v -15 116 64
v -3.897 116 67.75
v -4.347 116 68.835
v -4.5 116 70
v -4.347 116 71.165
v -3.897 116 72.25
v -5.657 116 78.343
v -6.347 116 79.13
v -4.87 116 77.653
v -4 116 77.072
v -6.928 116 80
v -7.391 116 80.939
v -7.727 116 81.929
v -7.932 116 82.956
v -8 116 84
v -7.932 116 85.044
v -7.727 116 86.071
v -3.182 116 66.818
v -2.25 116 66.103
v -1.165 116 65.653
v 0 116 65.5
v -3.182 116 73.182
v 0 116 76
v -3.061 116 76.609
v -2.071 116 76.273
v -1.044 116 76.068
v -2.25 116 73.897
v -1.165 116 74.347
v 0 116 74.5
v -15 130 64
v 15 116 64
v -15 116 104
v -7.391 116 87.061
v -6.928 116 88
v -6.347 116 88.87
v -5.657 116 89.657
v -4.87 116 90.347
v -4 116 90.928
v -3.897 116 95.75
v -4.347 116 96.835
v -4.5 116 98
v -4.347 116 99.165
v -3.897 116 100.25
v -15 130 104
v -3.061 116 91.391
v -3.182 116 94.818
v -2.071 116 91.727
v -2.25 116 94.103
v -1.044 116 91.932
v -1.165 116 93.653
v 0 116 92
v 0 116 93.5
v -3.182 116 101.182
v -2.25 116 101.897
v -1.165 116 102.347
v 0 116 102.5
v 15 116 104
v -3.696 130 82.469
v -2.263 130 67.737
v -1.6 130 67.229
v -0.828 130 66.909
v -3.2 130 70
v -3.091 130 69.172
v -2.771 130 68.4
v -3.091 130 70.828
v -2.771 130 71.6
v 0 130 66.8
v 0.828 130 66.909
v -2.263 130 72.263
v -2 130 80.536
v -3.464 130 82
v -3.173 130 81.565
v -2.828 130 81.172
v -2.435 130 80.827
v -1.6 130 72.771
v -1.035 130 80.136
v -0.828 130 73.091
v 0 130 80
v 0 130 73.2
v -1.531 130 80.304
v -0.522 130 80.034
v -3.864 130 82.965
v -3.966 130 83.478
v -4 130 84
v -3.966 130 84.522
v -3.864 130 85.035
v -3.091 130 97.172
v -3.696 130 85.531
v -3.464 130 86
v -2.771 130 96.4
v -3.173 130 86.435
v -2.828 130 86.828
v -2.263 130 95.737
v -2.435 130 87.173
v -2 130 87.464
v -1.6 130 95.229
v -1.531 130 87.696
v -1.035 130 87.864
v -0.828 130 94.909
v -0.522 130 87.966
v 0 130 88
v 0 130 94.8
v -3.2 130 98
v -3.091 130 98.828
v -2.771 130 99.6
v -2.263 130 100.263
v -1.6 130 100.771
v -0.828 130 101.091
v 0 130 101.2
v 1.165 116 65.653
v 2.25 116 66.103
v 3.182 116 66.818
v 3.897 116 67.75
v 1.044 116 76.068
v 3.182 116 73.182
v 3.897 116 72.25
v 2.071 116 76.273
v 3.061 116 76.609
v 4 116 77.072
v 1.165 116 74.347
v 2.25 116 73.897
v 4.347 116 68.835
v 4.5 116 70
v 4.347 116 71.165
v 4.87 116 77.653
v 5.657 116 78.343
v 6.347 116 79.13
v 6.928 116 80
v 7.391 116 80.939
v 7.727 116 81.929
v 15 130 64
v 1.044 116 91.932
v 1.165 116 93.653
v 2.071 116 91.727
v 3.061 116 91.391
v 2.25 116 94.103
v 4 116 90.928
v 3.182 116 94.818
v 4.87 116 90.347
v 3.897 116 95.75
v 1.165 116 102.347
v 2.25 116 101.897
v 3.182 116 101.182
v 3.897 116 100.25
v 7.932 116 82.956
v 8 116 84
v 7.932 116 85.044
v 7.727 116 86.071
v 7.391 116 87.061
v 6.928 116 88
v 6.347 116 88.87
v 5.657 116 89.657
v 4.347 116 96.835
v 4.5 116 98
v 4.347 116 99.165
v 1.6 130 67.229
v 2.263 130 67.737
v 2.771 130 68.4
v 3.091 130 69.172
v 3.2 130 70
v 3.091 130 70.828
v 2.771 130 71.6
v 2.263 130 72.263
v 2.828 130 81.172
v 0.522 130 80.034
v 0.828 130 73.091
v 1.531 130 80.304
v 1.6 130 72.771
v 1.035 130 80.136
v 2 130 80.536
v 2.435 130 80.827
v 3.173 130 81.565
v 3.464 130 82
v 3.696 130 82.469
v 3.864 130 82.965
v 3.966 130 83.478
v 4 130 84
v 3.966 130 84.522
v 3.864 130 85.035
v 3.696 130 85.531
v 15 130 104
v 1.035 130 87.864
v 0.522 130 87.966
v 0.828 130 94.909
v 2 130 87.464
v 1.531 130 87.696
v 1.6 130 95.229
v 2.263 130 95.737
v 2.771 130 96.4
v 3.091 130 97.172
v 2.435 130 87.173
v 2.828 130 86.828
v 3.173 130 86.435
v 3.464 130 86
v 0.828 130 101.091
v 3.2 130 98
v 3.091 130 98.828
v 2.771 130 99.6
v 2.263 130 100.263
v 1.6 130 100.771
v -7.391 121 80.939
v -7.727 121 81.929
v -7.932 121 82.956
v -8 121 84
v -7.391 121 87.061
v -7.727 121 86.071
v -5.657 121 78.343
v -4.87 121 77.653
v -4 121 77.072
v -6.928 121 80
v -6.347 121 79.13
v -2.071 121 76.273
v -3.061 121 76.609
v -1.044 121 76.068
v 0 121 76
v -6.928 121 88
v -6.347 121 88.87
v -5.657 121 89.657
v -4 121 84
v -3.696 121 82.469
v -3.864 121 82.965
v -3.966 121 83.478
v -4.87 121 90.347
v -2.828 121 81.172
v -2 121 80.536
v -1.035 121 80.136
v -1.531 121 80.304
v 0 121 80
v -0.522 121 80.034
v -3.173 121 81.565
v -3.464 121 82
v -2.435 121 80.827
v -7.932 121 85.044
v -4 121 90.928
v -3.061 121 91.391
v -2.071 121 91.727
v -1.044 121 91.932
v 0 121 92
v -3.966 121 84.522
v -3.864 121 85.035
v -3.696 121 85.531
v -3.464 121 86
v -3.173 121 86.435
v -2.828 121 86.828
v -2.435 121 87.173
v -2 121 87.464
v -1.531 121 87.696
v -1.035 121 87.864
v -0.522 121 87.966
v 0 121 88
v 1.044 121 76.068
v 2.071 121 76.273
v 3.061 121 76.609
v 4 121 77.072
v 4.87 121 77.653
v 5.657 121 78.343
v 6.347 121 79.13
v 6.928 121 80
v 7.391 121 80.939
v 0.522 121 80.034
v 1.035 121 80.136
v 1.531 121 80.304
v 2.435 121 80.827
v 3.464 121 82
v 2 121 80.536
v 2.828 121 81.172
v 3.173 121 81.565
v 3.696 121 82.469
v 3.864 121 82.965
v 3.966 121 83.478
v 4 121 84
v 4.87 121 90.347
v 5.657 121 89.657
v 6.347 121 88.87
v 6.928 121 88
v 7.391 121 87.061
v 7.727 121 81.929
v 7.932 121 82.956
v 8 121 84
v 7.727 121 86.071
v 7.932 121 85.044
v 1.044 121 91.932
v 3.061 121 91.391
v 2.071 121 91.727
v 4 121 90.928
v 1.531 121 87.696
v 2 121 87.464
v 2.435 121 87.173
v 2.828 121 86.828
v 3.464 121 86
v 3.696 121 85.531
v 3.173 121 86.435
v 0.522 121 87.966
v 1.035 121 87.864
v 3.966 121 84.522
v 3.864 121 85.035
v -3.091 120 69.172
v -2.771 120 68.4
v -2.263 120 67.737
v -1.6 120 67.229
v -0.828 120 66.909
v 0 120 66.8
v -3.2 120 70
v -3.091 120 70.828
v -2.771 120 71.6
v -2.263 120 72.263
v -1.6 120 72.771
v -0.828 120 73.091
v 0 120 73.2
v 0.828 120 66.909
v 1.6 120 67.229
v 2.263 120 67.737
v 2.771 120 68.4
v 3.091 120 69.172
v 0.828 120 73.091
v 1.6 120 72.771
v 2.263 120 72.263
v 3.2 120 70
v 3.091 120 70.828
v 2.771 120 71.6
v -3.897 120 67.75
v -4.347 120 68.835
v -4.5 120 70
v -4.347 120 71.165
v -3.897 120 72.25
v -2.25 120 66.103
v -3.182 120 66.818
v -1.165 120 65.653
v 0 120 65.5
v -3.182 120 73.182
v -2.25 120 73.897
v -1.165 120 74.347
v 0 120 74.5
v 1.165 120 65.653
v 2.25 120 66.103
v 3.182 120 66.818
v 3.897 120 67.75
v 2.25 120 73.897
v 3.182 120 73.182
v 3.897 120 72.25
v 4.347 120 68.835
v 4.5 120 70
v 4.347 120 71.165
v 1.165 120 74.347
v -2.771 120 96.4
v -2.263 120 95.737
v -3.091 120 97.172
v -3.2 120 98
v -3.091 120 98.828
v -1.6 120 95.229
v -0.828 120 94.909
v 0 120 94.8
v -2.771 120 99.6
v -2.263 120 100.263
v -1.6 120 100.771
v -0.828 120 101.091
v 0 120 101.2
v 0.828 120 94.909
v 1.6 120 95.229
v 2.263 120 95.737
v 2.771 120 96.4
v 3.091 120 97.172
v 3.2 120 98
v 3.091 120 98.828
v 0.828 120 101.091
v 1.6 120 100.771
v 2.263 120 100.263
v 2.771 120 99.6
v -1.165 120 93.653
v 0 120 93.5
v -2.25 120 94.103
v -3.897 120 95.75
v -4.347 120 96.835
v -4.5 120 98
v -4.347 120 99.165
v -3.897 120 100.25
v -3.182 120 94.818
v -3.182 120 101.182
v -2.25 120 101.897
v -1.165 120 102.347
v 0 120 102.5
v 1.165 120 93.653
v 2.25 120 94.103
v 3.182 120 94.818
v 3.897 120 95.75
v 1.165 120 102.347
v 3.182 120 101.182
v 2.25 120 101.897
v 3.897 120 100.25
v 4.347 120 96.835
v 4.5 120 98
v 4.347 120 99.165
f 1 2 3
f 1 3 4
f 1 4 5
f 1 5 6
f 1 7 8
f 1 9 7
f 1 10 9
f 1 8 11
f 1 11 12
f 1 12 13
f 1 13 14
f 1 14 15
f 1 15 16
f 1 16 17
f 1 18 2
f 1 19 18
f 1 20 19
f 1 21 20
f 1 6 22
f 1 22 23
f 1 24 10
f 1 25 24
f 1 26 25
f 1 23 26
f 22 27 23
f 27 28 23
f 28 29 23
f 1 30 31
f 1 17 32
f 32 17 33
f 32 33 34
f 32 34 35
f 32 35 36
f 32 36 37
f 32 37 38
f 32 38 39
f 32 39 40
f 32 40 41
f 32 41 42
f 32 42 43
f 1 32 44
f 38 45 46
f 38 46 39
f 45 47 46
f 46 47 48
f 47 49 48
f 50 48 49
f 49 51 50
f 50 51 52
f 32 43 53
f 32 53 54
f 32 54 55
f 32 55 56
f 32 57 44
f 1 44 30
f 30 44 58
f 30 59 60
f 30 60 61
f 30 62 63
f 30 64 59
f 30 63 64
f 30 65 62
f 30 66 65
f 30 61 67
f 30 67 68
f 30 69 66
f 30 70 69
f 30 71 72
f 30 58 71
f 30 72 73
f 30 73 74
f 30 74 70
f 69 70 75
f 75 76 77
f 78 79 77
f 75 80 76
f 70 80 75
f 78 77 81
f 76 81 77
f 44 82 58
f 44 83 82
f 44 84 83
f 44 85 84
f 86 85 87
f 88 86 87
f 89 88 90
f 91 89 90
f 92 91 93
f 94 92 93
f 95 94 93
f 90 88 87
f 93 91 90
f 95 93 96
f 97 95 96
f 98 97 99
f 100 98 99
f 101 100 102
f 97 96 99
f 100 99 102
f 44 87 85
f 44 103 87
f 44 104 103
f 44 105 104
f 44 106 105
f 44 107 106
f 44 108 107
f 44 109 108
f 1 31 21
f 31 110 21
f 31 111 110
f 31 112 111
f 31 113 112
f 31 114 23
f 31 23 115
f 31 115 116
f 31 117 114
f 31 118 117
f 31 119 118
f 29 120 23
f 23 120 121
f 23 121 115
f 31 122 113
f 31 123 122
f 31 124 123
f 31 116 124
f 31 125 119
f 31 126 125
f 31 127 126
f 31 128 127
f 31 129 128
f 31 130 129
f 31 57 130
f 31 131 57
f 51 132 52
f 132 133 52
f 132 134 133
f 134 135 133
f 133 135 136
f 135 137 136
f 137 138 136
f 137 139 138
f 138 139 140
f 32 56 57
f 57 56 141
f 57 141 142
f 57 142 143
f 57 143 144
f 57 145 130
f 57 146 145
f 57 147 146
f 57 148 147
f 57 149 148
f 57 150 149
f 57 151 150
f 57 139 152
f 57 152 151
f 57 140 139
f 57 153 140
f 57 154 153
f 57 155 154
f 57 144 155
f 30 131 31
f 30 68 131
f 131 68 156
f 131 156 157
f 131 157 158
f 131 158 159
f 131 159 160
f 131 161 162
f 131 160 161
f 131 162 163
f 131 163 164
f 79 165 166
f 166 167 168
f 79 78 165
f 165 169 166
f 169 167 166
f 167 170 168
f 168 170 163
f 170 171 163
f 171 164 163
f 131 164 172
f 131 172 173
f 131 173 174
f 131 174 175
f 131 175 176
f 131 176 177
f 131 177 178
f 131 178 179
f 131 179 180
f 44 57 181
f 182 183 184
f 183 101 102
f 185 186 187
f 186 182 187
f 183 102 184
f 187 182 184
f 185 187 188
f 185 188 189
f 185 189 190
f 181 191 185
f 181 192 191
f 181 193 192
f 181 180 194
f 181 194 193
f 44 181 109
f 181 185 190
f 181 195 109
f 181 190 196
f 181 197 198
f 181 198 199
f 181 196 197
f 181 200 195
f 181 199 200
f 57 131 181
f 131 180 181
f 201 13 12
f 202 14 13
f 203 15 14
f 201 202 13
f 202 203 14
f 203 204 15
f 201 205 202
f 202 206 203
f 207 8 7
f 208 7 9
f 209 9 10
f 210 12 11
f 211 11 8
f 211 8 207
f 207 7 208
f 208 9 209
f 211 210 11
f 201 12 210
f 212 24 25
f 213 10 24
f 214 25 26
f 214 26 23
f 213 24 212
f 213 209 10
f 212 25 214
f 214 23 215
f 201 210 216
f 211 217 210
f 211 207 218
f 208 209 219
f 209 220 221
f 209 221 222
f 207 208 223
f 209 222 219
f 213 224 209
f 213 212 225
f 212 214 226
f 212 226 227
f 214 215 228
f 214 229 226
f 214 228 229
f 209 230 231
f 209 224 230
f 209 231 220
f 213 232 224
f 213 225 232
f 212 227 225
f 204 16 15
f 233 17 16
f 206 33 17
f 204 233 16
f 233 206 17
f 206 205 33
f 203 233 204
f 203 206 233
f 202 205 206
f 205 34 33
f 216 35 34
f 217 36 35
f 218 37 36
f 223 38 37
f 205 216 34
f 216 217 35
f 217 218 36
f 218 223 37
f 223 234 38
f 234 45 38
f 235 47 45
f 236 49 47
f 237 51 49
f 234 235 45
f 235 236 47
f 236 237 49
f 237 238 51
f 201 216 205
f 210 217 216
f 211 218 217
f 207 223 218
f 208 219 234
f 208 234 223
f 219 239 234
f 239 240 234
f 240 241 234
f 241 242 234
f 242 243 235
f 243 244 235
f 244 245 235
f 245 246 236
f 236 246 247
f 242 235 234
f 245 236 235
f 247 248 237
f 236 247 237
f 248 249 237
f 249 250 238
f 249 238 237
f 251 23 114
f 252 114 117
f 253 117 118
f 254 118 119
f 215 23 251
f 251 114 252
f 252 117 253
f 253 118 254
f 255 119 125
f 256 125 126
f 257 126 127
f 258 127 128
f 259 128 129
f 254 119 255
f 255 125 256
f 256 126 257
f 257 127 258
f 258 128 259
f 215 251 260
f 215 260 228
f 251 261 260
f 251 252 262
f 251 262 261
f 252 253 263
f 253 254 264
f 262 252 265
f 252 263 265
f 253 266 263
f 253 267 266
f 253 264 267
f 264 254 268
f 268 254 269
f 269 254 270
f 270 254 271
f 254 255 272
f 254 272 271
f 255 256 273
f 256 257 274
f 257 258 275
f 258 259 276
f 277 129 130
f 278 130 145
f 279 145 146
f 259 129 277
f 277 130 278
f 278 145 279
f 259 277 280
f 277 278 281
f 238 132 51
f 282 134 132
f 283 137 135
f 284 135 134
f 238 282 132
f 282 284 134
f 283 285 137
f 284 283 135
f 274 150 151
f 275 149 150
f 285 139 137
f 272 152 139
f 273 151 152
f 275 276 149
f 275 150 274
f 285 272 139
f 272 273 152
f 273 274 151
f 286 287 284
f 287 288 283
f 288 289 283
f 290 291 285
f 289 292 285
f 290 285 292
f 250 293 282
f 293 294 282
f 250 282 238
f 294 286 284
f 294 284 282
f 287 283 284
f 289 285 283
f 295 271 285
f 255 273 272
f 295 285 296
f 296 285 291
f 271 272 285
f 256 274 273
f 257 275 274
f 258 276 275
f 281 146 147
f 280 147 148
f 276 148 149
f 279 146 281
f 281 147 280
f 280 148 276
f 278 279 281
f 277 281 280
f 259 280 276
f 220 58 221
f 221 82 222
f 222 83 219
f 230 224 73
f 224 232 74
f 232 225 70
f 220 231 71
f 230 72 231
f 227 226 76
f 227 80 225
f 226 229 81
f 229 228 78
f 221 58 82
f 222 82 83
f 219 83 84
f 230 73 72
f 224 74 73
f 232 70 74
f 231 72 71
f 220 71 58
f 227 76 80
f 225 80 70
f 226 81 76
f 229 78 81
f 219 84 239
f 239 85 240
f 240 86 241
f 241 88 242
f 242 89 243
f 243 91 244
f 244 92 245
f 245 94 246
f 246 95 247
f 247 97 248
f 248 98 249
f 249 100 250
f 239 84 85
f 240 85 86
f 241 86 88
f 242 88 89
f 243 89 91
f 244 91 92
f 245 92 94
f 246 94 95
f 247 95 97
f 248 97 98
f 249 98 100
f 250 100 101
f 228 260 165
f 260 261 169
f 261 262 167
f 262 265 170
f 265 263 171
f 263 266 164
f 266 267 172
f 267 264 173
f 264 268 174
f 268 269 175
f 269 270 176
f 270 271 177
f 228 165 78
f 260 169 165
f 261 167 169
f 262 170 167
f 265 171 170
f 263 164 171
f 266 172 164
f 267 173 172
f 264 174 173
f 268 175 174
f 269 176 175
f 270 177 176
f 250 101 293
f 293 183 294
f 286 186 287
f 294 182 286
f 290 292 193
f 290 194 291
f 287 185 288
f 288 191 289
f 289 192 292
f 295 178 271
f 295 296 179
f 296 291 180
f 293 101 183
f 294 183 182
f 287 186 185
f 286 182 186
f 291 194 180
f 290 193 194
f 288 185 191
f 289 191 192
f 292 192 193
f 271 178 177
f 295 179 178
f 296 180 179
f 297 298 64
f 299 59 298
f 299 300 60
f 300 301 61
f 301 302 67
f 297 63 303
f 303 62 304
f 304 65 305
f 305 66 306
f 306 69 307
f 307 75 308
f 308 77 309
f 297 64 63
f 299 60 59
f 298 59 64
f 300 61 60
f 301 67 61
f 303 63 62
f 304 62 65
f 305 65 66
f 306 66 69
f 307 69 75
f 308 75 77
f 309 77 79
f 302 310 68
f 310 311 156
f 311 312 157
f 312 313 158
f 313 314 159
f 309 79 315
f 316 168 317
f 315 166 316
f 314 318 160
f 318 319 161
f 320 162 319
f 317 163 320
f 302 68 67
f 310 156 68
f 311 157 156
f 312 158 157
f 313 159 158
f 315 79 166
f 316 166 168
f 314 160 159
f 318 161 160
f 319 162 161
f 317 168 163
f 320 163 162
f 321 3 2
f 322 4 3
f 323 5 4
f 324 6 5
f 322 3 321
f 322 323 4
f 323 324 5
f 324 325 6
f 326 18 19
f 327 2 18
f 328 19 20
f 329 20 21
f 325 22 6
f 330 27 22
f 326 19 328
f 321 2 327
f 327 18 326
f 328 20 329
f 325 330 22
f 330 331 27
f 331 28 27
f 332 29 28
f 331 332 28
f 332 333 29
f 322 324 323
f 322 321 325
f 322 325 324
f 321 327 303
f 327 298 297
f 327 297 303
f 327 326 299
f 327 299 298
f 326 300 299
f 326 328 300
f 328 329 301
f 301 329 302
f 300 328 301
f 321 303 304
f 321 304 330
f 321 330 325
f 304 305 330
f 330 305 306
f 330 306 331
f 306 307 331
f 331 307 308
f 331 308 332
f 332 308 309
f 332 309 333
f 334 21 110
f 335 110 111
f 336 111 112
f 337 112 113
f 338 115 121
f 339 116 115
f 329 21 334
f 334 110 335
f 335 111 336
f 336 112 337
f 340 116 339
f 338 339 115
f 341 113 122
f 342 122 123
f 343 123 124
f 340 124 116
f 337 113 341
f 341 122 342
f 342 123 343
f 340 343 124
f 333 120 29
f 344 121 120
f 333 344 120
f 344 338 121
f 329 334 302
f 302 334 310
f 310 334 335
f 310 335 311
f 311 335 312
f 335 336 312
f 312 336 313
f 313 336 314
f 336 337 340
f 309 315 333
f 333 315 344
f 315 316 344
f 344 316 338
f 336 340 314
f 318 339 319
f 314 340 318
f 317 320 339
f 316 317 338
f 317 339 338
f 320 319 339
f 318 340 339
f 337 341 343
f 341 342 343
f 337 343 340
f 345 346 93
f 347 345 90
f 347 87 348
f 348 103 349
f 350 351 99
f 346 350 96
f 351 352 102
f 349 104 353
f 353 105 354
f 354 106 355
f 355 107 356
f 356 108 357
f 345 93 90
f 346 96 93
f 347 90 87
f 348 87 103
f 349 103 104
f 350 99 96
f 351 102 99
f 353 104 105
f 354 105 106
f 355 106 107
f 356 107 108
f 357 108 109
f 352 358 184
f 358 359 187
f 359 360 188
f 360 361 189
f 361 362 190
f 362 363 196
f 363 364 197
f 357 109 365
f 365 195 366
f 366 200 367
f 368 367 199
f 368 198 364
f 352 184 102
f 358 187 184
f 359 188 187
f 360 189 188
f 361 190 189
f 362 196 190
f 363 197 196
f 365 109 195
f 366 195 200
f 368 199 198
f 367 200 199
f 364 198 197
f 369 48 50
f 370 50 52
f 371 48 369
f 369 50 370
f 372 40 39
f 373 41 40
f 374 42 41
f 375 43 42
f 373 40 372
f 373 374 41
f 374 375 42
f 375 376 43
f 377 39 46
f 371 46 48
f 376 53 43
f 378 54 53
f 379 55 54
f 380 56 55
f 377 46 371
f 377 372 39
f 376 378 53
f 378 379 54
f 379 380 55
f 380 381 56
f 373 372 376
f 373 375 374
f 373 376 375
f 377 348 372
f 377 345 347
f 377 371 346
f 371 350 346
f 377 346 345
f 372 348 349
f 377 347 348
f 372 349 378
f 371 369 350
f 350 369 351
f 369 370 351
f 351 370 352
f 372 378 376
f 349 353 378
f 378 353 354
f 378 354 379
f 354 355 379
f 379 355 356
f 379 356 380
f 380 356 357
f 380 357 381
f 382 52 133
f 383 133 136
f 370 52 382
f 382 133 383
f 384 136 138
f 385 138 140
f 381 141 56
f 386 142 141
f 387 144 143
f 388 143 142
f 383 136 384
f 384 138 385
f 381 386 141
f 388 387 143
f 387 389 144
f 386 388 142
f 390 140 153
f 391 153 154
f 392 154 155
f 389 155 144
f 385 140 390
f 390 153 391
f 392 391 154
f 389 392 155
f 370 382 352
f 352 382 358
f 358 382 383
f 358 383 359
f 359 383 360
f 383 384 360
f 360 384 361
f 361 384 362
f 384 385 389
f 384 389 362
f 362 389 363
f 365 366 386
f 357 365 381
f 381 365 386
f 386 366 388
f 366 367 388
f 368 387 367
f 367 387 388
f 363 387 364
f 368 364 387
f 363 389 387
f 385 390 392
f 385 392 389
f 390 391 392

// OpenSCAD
// =====================================================================
//  p15_idler_housing.scad - P15 idler housing (625-2RS bearing for the yoke's +Y shoulder screw)
//  PROJECT SCRATCH · 05-engineering/cad/frame · units: mm · frame: global (section 2)
//  Sources: mechanical.md section 5.2 (625-2RS 5 x 16 x 5 pressed in, housing on the +Y drop leg through 2 M3 slots
//  +/-1.5 in X and Z), 11 P15 (30 x 14 x 40, bore diam 16.0 x 5, shoulder relief diam 8).  Print bore axis vertical.
//  Housing Y 116..130 against the P12 flange (section 2's "idler at Y +101..+111" cannot touch the leg: C-S4).
//  The two "slots" are diam 6.4 holes (3.4 + 2 x 1.5) with washer seats, giving +/-1.5 in both X and Z.
// =====================================================================
include <lib_sp1.scad>
X = 30;  Y0 = 116;  Y1 = 130;  Z0 = 64;  Z1 = 104;  END_R = 26;  BRG_D = 16.0;  BRG_W = 5;  RELIEF_D = 8;
SLOT_D = M3_CLEAR + 3;  SLOT_AT = [[0, 70], [0, 98]];
module p15_idler_housing() difference() {
    intersection() { box(-X / 2, X / 2, Y0, Y1, Z0, Z1); cyl_y(END_R, Y0 - 1, Y1 + 1, AXIS_X, AXIS_Z); }
    cyl_y(BRG_D / 2, Y0 - 1, Y0 + BRG_W, AXIS_X, AXIS_Z);                 // bearing bore (press fit, test print first)
    cyl_y(RELIEF_D / 2, Y0 - 1, Y1 + 1, AXIS_X, AXIS_Z);                  // shoulder / screw-head relief
    for (h = SLOT_AT) { cyl_y(SLOT_D / 2, Y0 - 1, Y1 + 1, h[0], h[1], fn = 24); cyl_y(M3_HEAD_D / 2 + 1.5, Y0 - 1, Y0 + 4, h[0], h[1], fn = 24); }
}
p15_idler_housing();
